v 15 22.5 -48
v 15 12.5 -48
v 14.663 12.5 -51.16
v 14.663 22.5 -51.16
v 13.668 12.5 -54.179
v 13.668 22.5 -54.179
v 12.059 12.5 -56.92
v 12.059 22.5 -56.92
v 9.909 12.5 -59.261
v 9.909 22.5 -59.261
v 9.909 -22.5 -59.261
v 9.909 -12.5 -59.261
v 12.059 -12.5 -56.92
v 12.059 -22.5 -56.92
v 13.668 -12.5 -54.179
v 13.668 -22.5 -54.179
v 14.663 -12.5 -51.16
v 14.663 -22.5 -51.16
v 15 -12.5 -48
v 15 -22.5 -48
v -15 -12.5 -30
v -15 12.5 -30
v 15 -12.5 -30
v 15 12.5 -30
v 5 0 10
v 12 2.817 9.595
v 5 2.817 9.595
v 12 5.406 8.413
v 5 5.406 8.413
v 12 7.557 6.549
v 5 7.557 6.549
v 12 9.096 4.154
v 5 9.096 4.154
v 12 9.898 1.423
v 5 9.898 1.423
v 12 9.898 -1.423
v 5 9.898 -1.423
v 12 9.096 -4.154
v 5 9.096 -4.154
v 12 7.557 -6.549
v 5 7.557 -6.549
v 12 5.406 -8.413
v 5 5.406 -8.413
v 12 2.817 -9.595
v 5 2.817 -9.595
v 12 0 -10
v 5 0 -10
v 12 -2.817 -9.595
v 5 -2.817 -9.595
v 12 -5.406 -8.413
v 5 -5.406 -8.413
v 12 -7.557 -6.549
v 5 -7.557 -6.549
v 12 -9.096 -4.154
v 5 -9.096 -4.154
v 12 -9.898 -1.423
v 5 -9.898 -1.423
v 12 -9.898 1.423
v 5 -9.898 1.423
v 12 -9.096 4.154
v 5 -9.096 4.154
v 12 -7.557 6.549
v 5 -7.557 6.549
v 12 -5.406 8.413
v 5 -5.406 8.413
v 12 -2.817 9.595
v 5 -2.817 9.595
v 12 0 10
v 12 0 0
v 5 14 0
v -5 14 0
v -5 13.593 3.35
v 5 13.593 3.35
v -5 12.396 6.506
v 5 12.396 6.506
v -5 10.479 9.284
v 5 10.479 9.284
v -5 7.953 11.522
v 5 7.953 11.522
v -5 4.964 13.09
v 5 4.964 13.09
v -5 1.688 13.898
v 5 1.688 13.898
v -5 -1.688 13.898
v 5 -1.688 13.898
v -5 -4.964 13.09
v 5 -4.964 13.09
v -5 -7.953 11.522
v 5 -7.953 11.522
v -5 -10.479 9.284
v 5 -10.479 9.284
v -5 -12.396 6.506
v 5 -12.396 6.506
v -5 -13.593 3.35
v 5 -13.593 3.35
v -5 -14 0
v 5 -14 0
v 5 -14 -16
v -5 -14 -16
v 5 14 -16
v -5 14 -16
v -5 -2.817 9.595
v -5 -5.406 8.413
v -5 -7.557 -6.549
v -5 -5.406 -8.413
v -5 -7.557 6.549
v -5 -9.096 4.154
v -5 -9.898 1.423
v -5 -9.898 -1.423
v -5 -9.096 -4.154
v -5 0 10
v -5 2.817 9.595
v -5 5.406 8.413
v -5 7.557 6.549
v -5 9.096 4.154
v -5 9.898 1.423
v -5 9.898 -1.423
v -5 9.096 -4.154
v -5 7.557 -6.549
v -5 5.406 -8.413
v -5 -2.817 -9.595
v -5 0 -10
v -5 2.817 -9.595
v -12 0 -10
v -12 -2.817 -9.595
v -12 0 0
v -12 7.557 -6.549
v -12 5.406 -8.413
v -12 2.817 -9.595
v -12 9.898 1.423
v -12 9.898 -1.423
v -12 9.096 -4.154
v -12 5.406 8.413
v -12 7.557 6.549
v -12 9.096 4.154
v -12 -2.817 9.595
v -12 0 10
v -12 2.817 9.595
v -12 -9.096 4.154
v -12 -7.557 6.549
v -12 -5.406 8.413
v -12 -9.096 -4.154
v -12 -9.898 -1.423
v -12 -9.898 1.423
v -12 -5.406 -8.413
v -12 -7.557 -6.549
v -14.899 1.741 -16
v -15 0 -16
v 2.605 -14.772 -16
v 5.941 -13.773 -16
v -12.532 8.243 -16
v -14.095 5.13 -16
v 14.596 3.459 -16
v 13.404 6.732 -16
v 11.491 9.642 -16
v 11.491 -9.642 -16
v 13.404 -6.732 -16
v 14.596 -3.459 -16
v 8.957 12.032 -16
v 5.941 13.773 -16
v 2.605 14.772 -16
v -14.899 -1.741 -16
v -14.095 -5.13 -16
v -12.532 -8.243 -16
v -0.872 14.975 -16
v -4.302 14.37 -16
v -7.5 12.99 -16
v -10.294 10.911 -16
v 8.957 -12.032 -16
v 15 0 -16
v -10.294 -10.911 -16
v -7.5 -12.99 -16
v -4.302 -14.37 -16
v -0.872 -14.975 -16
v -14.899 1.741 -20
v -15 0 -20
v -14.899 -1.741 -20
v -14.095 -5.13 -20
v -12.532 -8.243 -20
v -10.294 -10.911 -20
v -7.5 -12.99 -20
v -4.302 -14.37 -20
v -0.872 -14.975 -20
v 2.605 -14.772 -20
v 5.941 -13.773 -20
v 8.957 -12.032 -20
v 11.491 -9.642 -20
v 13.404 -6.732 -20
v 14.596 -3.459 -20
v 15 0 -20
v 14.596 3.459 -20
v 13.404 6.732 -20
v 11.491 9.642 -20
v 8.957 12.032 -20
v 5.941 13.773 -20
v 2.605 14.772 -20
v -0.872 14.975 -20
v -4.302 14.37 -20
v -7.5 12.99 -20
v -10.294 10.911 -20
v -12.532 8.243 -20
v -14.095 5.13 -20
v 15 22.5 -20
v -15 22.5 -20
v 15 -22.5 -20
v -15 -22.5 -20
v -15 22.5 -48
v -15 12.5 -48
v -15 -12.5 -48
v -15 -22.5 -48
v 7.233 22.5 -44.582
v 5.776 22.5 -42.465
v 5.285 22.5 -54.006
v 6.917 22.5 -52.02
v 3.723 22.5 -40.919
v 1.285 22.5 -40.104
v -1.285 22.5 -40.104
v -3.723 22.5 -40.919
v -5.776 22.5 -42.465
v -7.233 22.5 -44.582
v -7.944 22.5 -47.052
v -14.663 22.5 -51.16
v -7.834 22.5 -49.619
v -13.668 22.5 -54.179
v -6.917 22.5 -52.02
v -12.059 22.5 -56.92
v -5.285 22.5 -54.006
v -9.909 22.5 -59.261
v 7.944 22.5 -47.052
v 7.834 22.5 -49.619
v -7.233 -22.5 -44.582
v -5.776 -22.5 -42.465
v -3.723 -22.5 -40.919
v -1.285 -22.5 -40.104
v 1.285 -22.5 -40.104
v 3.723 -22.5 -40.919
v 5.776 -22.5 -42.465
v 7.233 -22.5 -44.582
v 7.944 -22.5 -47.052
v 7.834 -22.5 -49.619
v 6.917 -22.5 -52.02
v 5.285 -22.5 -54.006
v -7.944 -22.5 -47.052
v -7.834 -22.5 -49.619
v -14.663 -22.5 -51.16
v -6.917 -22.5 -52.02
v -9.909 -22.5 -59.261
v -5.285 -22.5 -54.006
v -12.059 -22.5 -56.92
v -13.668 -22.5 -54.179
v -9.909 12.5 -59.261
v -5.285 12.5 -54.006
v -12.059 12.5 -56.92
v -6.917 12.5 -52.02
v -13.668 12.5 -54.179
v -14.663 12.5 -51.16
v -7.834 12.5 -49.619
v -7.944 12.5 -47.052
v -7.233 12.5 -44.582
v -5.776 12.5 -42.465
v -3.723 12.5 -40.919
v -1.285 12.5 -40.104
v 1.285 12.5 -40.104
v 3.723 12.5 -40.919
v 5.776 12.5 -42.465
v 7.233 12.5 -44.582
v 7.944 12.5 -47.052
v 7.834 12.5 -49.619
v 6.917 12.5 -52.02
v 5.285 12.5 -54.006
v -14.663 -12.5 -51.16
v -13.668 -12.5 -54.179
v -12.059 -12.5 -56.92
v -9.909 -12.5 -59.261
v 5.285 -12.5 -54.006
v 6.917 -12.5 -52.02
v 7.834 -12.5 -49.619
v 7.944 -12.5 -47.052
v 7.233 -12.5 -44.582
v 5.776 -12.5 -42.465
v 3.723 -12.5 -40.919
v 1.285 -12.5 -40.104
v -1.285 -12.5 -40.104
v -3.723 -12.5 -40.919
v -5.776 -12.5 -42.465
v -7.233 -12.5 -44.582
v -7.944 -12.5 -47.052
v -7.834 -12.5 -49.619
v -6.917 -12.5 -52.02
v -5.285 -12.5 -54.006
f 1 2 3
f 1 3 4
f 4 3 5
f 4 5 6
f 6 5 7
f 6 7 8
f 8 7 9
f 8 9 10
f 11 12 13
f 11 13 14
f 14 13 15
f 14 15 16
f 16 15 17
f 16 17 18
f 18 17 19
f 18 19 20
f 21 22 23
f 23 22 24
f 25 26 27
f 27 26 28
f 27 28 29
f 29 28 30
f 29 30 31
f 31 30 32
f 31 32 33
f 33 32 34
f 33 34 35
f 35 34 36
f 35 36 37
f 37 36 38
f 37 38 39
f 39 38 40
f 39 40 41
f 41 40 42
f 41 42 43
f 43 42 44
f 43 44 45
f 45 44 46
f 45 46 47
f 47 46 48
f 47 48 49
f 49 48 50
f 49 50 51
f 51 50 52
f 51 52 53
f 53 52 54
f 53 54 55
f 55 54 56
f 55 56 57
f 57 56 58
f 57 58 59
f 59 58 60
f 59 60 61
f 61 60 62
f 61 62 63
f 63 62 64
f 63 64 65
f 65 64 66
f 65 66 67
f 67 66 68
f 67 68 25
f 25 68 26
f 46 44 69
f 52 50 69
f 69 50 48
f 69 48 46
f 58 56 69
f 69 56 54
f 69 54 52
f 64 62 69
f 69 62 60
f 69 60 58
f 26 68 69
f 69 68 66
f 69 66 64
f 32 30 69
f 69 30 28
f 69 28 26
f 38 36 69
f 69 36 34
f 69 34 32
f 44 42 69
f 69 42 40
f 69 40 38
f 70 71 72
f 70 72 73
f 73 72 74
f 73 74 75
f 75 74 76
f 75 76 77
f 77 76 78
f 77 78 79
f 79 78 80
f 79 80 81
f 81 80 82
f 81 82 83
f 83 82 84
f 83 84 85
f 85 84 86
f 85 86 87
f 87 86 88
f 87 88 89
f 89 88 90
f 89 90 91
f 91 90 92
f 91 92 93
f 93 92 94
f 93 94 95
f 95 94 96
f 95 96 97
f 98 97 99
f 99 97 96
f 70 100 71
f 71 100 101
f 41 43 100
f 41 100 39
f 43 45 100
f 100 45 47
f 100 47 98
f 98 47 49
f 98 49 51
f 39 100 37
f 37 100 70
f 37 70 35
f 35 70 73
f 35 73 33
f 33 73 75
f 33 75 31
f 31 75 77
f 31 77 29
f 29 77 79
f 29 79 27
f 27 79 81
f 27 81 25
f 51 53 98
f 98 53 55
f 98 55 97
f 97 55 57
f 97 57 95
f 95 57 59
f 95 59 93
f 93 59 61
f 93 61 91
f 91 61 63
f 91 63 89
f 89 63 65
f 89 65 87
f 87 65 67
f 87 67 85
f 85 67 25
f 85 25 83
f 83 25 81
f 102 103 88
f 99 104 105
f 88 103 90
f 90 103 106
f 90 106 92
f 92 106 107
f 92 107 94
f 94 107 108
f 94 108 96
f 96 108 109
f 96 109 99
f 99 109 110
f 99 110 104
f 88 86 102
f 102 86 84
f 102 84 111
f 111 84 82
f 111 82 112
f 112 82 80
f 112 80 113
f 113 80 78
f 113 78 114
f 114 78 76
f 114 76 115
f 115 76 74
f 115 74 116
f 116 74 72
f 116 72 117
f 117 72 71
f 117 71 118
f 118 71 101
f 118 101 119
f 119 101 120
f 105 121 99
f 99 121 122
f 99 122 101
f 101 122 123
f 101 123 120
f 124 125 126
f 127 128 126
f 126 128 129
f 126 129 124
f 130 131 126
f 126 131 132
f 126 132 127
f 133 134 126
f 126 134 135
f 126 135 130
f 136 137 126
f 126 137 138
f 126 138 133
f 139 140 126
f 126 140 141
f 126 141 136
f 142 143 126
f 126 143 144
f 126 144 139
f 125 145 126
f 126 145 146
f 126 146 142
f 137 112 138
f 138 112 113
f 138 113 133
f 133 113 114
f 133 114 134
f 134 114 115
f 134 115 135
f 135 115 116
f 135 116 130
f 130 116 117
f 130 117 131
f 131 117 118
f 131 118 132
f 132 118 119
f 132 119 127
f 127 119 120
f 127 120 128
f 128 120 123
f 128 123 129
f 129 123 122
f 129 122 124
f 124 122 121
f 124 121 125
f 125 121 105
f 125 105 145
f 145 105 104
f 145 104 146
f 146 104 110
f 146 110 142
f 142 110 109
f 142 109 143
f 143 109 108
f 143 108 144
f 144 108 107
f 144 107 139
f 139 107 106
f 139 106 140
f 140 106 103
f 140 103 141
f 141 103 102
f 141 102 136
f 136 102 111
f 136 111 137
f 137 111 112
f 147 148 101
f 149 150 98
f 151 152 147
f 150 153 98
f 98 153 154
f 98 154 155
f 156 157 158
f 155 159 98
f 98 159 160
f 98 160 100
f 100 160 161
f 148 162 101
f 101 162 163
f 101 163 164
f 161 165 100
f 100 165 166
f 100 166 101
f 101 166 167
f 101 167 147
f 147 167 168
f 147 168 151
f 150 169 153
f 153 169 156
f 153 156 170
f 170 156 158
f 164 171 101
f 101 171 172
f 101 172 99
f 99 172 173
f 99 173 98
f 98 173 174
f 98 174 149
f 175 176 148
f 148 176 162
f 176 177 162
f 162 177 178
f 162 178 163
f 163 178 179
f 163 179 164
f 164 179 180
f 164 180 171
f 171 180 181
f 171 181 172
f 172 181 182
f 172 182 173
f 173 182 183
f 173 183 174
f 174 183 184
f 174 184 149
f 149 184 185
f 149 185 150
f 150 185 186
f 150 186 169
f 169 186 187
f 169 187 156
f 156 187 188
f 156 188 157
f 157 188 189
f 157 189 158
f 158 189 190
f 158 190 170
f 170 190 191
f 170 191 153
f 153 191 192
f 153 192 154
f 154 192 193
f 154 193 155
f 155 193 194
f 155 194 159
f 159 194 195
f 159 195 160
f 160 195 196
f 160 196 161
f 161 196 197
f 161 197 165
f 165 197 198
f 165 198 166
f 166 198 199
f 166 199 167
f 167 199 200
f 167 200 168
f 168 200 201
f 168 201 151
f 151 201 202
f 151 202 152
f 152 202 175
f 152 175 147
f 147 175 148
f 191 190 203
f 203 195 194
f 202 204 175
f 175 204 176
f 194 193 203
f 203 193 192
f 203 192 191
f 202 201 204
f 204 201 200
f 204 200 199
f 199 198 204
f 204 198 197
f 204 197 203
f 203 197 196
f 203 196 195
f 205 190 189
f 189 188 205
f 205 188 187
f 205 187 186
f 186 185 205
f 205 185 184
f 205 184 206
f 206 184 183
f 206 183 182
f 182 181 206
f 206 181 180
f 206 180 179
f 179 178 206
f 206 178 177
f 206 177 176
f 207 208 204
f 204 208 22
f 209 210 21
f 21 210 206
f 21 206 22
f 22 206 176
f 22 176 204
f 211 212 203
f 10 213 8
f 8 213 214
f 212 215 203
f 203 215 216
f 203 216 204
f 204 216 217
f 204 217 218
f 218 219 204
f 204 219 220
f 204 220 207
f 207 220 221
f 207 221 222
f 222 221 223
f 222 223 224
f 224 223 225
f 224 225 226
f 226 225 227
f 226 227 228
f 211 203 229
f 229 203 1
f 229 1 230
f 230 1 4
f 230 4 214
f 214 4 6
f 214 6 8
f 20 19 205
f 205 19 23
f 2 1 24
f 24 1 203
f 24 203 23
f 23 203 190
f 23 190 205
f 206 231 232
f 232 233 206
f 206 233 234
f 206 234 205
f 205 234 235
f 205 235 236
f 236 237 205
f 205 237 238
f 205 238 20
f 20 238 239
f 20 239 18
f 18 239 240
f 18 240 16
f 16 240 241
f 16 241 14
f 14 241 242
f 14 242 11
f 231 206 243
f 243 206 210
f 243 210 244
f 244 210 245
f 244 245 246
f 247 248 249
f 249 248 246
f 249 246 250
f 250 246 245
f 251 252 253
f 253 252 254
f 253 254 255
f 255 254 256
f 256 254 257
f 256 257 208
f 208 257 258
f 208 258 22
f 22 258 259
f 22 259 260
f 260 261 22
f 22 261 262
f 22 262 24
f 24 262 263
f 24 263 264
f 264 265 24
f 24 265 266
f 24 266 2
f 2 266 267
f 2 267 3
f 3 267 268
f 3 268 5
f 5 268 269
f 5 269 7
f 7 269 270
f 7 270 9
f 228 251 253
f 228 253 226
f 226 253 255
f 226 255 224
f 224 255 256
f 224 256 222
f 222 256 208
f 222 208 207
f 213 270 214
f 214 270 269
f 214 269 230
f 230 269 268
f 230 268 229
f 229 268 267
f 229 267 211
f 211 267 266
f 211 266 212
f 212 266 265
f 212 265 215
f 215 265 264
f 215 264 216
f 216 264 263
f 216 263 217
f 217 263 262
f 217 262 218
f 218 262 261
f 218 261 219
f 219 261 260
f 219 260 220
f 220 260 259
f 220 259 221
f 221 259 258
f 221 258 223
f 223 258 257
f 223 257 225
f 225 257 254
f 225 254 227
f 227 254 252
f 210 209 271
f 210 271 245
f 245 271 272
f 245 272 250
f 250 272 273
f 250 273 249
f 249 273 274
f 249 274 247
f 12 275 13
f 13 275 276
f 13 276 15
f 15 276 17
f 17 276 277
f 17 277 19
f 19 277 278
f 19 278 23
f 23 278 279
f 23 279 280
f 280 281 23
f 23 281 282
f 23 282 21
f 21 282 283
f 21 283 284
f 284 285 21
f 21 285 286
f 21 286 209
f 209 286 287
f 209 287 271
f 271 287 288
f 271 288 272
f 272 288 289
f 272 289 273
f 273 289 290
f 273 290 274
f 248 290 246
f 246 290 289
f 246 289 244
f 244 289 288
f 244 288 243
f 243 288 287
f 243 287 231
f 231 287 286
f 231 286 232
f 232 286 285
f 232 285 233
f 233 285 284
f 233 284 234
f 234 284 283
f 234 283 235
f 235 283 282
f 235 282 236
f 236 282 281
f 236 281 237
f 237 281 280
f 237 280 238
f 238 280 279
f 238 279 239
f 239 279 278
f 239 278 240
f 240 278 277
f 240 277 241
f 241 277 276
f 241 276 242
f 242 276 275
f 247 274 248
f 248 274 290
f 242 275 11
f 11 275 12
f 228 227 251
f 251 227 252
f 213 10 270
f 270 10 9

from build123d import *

# Parameters (mm, degrees)
SKETCH3_R           = 10
BOSS_EXTRUDE2_DEPTH = 12
BOSS_EXTRUDE3_DEPTH = 5
SKETCH5_R           = 15
BOSS_EXTRUDE4_DEPTH = 4
SKETCH6_W           = 30
SKETCH6_H           = 45
BOSS_EXTRUDE6_DEPTH = 10
BOSS_EXTRUDE7_START = 12.5
SKETCH7_R           = 8
BOSS_EXTRUDE7_DEPTH = 10
BOSS_EXTRUDE8_START = -22.5
SKETCH7_2_R         = 8
BOSS_EXTRUDE8_DEPTH = 10
CUT_EXTRUDE1_REACH  = 80.861


with BuildPart() as part:
    # Sketch3 → Boss-Extrude2 (new, symmetric)
    with BuildSketch(Plane(origin=(0, 0, 0), x_dir=(0, 0, -1), z_dir=(1, 0, 0))):
        Circle(SKETCH3_R)
    extrude(amount=BOSS_EXTRUDE2_DEPTH, both=True)

    # Sketch4 → Boss-Extrude3 (add, symmetric)
    with BuildSketch(Plane(origin=(0, 0, 0), x_dir=(0, 0, -1), z_dir=(1, 0, 0))):
        with BuildLine():
            Line((0, 14), (16, 14))
            Line((16, 14), (16, -14))
            Line((16, -14), (0, -14))
            ThreePointArc((0, -14), (-14, 0), (0, 14))
        make_face()
    extrude(amount=BOSS_EXTRUDE3_DEPTH, both=True)

    # Sketch5 → Boss-Extrude4 (add)
    with BuildSketch(Plane(origin=(0, 0, -16), x_dir=(-1, 0, 0), z_dir=(0, 0, -1))):
        Circle(SKETCH5_R)
    extrude(amount=BOSS_EXTRUDE4_DEPTH)

    # Sketch6 → Boss-Extrude6 (add)
    with BuildSketch(Plane(origin=(0, 0, -20), x_dir=(-1, 0, 0), z_dir=(0, 0, -1))):
        Rectangle(SKETCH6_W, SKETCH6_H)
    extrude(amount=BOSS_EXTRUDE6_DEPTH)

    # Sketch7 → Boss-Extrude7 (add)
    with BuildSketch(Plane(origin=(0, 0, 0), x_dir=(1, 0, 0), z_dir=(0, 1, 0)).offset(BOSS_EXTRUDE7_START)):
        with BuildLine():
            Line((-15, 30), (-15, 48))
            ThreePointArc((-15, 48), (0, 63), (15, 48))
            Line((15, 48), (15, 30))
            Line((15, 30), (-15, 30))
        make_face()
        with Locations(Location((0, 48, 0), (0, 0, 270))):
            Circle(SKETCH7_R, mode=Mode.SUBTRACT)
    extrude(amount=BOSS_EXTRUDE7_DEPTH)

    # Sketch7<2> → Boss-Extrude8 (add)
    with BuildSketch(Plane(origin=(0, 0, 0), x_dir=(1, 0, 0), z_dir=(0, 1, 0)).offset(BOSS_EXTRUDE8_START)):
        with BuildLine():
            Line((-15, 30), (-15, 48))
            ThreePointArc((-15, 48), (0, 63), (15, 48))
            Line((15, 48), (15, 30))
            Line((15, 30), (-15, 30))
        make_face()
        with Locations(Location((0, 48, 0), (0, 0, 270))):
            Circle(SKETCH7_2_R, mode=Mode.SUBTRACT)
    extrude(amount=BOSS_EXTRUDE8_DEPTH)

    # Cut-Extrude1: up to this face of the body (flat: up to its plane)
    cut_extrude1_end = Plane(part.part.faces().sort_by_distance((0, -22.5, -38.416854183))[0])
    # Sketch8 → Cut-Extrude1 (cut, up to the picked face)
    with BuildSketch(Plane(origin=(0, 22.5, 0), x_dir=(1, 0, 0), z_dir=(0, 1, 0)), mode=Mode.PRIVATE) as cut_extrude1_sk1:
        with BuildLine():
            Line((-9.909192751, 59.260901342), (-5.2849028, 54.005814049))
            ThreePointArc((-5.2849028, 54.005814049), (0, 56), (5.2849028, 54.005814049))
            Line((5.2849028, 54.005814049), (9.909192751, 59.260901342))
            ThreePointArc((9.909192751, 59.260901342), (0, 63), (-9.909192751, 59.260901342))
        make_face()
    cut_extrude1_tool1 = split(extrude(cut_extrude1_sk1.sketch, amount=-CUT_EXTRUDE1_REACH, mode=Mode.PRIVATE), bisect_by=cut_extrude1_end, keep=Keep.BOTH, mode=Mode.PRIVATE)
    add(cut_extrude1_tool1.solids().sort_by(Axis((0, 22.5, -58.852599), (0, -1, 0)))[0], mode=Mode.SUBTRACT)


solid = part.part
